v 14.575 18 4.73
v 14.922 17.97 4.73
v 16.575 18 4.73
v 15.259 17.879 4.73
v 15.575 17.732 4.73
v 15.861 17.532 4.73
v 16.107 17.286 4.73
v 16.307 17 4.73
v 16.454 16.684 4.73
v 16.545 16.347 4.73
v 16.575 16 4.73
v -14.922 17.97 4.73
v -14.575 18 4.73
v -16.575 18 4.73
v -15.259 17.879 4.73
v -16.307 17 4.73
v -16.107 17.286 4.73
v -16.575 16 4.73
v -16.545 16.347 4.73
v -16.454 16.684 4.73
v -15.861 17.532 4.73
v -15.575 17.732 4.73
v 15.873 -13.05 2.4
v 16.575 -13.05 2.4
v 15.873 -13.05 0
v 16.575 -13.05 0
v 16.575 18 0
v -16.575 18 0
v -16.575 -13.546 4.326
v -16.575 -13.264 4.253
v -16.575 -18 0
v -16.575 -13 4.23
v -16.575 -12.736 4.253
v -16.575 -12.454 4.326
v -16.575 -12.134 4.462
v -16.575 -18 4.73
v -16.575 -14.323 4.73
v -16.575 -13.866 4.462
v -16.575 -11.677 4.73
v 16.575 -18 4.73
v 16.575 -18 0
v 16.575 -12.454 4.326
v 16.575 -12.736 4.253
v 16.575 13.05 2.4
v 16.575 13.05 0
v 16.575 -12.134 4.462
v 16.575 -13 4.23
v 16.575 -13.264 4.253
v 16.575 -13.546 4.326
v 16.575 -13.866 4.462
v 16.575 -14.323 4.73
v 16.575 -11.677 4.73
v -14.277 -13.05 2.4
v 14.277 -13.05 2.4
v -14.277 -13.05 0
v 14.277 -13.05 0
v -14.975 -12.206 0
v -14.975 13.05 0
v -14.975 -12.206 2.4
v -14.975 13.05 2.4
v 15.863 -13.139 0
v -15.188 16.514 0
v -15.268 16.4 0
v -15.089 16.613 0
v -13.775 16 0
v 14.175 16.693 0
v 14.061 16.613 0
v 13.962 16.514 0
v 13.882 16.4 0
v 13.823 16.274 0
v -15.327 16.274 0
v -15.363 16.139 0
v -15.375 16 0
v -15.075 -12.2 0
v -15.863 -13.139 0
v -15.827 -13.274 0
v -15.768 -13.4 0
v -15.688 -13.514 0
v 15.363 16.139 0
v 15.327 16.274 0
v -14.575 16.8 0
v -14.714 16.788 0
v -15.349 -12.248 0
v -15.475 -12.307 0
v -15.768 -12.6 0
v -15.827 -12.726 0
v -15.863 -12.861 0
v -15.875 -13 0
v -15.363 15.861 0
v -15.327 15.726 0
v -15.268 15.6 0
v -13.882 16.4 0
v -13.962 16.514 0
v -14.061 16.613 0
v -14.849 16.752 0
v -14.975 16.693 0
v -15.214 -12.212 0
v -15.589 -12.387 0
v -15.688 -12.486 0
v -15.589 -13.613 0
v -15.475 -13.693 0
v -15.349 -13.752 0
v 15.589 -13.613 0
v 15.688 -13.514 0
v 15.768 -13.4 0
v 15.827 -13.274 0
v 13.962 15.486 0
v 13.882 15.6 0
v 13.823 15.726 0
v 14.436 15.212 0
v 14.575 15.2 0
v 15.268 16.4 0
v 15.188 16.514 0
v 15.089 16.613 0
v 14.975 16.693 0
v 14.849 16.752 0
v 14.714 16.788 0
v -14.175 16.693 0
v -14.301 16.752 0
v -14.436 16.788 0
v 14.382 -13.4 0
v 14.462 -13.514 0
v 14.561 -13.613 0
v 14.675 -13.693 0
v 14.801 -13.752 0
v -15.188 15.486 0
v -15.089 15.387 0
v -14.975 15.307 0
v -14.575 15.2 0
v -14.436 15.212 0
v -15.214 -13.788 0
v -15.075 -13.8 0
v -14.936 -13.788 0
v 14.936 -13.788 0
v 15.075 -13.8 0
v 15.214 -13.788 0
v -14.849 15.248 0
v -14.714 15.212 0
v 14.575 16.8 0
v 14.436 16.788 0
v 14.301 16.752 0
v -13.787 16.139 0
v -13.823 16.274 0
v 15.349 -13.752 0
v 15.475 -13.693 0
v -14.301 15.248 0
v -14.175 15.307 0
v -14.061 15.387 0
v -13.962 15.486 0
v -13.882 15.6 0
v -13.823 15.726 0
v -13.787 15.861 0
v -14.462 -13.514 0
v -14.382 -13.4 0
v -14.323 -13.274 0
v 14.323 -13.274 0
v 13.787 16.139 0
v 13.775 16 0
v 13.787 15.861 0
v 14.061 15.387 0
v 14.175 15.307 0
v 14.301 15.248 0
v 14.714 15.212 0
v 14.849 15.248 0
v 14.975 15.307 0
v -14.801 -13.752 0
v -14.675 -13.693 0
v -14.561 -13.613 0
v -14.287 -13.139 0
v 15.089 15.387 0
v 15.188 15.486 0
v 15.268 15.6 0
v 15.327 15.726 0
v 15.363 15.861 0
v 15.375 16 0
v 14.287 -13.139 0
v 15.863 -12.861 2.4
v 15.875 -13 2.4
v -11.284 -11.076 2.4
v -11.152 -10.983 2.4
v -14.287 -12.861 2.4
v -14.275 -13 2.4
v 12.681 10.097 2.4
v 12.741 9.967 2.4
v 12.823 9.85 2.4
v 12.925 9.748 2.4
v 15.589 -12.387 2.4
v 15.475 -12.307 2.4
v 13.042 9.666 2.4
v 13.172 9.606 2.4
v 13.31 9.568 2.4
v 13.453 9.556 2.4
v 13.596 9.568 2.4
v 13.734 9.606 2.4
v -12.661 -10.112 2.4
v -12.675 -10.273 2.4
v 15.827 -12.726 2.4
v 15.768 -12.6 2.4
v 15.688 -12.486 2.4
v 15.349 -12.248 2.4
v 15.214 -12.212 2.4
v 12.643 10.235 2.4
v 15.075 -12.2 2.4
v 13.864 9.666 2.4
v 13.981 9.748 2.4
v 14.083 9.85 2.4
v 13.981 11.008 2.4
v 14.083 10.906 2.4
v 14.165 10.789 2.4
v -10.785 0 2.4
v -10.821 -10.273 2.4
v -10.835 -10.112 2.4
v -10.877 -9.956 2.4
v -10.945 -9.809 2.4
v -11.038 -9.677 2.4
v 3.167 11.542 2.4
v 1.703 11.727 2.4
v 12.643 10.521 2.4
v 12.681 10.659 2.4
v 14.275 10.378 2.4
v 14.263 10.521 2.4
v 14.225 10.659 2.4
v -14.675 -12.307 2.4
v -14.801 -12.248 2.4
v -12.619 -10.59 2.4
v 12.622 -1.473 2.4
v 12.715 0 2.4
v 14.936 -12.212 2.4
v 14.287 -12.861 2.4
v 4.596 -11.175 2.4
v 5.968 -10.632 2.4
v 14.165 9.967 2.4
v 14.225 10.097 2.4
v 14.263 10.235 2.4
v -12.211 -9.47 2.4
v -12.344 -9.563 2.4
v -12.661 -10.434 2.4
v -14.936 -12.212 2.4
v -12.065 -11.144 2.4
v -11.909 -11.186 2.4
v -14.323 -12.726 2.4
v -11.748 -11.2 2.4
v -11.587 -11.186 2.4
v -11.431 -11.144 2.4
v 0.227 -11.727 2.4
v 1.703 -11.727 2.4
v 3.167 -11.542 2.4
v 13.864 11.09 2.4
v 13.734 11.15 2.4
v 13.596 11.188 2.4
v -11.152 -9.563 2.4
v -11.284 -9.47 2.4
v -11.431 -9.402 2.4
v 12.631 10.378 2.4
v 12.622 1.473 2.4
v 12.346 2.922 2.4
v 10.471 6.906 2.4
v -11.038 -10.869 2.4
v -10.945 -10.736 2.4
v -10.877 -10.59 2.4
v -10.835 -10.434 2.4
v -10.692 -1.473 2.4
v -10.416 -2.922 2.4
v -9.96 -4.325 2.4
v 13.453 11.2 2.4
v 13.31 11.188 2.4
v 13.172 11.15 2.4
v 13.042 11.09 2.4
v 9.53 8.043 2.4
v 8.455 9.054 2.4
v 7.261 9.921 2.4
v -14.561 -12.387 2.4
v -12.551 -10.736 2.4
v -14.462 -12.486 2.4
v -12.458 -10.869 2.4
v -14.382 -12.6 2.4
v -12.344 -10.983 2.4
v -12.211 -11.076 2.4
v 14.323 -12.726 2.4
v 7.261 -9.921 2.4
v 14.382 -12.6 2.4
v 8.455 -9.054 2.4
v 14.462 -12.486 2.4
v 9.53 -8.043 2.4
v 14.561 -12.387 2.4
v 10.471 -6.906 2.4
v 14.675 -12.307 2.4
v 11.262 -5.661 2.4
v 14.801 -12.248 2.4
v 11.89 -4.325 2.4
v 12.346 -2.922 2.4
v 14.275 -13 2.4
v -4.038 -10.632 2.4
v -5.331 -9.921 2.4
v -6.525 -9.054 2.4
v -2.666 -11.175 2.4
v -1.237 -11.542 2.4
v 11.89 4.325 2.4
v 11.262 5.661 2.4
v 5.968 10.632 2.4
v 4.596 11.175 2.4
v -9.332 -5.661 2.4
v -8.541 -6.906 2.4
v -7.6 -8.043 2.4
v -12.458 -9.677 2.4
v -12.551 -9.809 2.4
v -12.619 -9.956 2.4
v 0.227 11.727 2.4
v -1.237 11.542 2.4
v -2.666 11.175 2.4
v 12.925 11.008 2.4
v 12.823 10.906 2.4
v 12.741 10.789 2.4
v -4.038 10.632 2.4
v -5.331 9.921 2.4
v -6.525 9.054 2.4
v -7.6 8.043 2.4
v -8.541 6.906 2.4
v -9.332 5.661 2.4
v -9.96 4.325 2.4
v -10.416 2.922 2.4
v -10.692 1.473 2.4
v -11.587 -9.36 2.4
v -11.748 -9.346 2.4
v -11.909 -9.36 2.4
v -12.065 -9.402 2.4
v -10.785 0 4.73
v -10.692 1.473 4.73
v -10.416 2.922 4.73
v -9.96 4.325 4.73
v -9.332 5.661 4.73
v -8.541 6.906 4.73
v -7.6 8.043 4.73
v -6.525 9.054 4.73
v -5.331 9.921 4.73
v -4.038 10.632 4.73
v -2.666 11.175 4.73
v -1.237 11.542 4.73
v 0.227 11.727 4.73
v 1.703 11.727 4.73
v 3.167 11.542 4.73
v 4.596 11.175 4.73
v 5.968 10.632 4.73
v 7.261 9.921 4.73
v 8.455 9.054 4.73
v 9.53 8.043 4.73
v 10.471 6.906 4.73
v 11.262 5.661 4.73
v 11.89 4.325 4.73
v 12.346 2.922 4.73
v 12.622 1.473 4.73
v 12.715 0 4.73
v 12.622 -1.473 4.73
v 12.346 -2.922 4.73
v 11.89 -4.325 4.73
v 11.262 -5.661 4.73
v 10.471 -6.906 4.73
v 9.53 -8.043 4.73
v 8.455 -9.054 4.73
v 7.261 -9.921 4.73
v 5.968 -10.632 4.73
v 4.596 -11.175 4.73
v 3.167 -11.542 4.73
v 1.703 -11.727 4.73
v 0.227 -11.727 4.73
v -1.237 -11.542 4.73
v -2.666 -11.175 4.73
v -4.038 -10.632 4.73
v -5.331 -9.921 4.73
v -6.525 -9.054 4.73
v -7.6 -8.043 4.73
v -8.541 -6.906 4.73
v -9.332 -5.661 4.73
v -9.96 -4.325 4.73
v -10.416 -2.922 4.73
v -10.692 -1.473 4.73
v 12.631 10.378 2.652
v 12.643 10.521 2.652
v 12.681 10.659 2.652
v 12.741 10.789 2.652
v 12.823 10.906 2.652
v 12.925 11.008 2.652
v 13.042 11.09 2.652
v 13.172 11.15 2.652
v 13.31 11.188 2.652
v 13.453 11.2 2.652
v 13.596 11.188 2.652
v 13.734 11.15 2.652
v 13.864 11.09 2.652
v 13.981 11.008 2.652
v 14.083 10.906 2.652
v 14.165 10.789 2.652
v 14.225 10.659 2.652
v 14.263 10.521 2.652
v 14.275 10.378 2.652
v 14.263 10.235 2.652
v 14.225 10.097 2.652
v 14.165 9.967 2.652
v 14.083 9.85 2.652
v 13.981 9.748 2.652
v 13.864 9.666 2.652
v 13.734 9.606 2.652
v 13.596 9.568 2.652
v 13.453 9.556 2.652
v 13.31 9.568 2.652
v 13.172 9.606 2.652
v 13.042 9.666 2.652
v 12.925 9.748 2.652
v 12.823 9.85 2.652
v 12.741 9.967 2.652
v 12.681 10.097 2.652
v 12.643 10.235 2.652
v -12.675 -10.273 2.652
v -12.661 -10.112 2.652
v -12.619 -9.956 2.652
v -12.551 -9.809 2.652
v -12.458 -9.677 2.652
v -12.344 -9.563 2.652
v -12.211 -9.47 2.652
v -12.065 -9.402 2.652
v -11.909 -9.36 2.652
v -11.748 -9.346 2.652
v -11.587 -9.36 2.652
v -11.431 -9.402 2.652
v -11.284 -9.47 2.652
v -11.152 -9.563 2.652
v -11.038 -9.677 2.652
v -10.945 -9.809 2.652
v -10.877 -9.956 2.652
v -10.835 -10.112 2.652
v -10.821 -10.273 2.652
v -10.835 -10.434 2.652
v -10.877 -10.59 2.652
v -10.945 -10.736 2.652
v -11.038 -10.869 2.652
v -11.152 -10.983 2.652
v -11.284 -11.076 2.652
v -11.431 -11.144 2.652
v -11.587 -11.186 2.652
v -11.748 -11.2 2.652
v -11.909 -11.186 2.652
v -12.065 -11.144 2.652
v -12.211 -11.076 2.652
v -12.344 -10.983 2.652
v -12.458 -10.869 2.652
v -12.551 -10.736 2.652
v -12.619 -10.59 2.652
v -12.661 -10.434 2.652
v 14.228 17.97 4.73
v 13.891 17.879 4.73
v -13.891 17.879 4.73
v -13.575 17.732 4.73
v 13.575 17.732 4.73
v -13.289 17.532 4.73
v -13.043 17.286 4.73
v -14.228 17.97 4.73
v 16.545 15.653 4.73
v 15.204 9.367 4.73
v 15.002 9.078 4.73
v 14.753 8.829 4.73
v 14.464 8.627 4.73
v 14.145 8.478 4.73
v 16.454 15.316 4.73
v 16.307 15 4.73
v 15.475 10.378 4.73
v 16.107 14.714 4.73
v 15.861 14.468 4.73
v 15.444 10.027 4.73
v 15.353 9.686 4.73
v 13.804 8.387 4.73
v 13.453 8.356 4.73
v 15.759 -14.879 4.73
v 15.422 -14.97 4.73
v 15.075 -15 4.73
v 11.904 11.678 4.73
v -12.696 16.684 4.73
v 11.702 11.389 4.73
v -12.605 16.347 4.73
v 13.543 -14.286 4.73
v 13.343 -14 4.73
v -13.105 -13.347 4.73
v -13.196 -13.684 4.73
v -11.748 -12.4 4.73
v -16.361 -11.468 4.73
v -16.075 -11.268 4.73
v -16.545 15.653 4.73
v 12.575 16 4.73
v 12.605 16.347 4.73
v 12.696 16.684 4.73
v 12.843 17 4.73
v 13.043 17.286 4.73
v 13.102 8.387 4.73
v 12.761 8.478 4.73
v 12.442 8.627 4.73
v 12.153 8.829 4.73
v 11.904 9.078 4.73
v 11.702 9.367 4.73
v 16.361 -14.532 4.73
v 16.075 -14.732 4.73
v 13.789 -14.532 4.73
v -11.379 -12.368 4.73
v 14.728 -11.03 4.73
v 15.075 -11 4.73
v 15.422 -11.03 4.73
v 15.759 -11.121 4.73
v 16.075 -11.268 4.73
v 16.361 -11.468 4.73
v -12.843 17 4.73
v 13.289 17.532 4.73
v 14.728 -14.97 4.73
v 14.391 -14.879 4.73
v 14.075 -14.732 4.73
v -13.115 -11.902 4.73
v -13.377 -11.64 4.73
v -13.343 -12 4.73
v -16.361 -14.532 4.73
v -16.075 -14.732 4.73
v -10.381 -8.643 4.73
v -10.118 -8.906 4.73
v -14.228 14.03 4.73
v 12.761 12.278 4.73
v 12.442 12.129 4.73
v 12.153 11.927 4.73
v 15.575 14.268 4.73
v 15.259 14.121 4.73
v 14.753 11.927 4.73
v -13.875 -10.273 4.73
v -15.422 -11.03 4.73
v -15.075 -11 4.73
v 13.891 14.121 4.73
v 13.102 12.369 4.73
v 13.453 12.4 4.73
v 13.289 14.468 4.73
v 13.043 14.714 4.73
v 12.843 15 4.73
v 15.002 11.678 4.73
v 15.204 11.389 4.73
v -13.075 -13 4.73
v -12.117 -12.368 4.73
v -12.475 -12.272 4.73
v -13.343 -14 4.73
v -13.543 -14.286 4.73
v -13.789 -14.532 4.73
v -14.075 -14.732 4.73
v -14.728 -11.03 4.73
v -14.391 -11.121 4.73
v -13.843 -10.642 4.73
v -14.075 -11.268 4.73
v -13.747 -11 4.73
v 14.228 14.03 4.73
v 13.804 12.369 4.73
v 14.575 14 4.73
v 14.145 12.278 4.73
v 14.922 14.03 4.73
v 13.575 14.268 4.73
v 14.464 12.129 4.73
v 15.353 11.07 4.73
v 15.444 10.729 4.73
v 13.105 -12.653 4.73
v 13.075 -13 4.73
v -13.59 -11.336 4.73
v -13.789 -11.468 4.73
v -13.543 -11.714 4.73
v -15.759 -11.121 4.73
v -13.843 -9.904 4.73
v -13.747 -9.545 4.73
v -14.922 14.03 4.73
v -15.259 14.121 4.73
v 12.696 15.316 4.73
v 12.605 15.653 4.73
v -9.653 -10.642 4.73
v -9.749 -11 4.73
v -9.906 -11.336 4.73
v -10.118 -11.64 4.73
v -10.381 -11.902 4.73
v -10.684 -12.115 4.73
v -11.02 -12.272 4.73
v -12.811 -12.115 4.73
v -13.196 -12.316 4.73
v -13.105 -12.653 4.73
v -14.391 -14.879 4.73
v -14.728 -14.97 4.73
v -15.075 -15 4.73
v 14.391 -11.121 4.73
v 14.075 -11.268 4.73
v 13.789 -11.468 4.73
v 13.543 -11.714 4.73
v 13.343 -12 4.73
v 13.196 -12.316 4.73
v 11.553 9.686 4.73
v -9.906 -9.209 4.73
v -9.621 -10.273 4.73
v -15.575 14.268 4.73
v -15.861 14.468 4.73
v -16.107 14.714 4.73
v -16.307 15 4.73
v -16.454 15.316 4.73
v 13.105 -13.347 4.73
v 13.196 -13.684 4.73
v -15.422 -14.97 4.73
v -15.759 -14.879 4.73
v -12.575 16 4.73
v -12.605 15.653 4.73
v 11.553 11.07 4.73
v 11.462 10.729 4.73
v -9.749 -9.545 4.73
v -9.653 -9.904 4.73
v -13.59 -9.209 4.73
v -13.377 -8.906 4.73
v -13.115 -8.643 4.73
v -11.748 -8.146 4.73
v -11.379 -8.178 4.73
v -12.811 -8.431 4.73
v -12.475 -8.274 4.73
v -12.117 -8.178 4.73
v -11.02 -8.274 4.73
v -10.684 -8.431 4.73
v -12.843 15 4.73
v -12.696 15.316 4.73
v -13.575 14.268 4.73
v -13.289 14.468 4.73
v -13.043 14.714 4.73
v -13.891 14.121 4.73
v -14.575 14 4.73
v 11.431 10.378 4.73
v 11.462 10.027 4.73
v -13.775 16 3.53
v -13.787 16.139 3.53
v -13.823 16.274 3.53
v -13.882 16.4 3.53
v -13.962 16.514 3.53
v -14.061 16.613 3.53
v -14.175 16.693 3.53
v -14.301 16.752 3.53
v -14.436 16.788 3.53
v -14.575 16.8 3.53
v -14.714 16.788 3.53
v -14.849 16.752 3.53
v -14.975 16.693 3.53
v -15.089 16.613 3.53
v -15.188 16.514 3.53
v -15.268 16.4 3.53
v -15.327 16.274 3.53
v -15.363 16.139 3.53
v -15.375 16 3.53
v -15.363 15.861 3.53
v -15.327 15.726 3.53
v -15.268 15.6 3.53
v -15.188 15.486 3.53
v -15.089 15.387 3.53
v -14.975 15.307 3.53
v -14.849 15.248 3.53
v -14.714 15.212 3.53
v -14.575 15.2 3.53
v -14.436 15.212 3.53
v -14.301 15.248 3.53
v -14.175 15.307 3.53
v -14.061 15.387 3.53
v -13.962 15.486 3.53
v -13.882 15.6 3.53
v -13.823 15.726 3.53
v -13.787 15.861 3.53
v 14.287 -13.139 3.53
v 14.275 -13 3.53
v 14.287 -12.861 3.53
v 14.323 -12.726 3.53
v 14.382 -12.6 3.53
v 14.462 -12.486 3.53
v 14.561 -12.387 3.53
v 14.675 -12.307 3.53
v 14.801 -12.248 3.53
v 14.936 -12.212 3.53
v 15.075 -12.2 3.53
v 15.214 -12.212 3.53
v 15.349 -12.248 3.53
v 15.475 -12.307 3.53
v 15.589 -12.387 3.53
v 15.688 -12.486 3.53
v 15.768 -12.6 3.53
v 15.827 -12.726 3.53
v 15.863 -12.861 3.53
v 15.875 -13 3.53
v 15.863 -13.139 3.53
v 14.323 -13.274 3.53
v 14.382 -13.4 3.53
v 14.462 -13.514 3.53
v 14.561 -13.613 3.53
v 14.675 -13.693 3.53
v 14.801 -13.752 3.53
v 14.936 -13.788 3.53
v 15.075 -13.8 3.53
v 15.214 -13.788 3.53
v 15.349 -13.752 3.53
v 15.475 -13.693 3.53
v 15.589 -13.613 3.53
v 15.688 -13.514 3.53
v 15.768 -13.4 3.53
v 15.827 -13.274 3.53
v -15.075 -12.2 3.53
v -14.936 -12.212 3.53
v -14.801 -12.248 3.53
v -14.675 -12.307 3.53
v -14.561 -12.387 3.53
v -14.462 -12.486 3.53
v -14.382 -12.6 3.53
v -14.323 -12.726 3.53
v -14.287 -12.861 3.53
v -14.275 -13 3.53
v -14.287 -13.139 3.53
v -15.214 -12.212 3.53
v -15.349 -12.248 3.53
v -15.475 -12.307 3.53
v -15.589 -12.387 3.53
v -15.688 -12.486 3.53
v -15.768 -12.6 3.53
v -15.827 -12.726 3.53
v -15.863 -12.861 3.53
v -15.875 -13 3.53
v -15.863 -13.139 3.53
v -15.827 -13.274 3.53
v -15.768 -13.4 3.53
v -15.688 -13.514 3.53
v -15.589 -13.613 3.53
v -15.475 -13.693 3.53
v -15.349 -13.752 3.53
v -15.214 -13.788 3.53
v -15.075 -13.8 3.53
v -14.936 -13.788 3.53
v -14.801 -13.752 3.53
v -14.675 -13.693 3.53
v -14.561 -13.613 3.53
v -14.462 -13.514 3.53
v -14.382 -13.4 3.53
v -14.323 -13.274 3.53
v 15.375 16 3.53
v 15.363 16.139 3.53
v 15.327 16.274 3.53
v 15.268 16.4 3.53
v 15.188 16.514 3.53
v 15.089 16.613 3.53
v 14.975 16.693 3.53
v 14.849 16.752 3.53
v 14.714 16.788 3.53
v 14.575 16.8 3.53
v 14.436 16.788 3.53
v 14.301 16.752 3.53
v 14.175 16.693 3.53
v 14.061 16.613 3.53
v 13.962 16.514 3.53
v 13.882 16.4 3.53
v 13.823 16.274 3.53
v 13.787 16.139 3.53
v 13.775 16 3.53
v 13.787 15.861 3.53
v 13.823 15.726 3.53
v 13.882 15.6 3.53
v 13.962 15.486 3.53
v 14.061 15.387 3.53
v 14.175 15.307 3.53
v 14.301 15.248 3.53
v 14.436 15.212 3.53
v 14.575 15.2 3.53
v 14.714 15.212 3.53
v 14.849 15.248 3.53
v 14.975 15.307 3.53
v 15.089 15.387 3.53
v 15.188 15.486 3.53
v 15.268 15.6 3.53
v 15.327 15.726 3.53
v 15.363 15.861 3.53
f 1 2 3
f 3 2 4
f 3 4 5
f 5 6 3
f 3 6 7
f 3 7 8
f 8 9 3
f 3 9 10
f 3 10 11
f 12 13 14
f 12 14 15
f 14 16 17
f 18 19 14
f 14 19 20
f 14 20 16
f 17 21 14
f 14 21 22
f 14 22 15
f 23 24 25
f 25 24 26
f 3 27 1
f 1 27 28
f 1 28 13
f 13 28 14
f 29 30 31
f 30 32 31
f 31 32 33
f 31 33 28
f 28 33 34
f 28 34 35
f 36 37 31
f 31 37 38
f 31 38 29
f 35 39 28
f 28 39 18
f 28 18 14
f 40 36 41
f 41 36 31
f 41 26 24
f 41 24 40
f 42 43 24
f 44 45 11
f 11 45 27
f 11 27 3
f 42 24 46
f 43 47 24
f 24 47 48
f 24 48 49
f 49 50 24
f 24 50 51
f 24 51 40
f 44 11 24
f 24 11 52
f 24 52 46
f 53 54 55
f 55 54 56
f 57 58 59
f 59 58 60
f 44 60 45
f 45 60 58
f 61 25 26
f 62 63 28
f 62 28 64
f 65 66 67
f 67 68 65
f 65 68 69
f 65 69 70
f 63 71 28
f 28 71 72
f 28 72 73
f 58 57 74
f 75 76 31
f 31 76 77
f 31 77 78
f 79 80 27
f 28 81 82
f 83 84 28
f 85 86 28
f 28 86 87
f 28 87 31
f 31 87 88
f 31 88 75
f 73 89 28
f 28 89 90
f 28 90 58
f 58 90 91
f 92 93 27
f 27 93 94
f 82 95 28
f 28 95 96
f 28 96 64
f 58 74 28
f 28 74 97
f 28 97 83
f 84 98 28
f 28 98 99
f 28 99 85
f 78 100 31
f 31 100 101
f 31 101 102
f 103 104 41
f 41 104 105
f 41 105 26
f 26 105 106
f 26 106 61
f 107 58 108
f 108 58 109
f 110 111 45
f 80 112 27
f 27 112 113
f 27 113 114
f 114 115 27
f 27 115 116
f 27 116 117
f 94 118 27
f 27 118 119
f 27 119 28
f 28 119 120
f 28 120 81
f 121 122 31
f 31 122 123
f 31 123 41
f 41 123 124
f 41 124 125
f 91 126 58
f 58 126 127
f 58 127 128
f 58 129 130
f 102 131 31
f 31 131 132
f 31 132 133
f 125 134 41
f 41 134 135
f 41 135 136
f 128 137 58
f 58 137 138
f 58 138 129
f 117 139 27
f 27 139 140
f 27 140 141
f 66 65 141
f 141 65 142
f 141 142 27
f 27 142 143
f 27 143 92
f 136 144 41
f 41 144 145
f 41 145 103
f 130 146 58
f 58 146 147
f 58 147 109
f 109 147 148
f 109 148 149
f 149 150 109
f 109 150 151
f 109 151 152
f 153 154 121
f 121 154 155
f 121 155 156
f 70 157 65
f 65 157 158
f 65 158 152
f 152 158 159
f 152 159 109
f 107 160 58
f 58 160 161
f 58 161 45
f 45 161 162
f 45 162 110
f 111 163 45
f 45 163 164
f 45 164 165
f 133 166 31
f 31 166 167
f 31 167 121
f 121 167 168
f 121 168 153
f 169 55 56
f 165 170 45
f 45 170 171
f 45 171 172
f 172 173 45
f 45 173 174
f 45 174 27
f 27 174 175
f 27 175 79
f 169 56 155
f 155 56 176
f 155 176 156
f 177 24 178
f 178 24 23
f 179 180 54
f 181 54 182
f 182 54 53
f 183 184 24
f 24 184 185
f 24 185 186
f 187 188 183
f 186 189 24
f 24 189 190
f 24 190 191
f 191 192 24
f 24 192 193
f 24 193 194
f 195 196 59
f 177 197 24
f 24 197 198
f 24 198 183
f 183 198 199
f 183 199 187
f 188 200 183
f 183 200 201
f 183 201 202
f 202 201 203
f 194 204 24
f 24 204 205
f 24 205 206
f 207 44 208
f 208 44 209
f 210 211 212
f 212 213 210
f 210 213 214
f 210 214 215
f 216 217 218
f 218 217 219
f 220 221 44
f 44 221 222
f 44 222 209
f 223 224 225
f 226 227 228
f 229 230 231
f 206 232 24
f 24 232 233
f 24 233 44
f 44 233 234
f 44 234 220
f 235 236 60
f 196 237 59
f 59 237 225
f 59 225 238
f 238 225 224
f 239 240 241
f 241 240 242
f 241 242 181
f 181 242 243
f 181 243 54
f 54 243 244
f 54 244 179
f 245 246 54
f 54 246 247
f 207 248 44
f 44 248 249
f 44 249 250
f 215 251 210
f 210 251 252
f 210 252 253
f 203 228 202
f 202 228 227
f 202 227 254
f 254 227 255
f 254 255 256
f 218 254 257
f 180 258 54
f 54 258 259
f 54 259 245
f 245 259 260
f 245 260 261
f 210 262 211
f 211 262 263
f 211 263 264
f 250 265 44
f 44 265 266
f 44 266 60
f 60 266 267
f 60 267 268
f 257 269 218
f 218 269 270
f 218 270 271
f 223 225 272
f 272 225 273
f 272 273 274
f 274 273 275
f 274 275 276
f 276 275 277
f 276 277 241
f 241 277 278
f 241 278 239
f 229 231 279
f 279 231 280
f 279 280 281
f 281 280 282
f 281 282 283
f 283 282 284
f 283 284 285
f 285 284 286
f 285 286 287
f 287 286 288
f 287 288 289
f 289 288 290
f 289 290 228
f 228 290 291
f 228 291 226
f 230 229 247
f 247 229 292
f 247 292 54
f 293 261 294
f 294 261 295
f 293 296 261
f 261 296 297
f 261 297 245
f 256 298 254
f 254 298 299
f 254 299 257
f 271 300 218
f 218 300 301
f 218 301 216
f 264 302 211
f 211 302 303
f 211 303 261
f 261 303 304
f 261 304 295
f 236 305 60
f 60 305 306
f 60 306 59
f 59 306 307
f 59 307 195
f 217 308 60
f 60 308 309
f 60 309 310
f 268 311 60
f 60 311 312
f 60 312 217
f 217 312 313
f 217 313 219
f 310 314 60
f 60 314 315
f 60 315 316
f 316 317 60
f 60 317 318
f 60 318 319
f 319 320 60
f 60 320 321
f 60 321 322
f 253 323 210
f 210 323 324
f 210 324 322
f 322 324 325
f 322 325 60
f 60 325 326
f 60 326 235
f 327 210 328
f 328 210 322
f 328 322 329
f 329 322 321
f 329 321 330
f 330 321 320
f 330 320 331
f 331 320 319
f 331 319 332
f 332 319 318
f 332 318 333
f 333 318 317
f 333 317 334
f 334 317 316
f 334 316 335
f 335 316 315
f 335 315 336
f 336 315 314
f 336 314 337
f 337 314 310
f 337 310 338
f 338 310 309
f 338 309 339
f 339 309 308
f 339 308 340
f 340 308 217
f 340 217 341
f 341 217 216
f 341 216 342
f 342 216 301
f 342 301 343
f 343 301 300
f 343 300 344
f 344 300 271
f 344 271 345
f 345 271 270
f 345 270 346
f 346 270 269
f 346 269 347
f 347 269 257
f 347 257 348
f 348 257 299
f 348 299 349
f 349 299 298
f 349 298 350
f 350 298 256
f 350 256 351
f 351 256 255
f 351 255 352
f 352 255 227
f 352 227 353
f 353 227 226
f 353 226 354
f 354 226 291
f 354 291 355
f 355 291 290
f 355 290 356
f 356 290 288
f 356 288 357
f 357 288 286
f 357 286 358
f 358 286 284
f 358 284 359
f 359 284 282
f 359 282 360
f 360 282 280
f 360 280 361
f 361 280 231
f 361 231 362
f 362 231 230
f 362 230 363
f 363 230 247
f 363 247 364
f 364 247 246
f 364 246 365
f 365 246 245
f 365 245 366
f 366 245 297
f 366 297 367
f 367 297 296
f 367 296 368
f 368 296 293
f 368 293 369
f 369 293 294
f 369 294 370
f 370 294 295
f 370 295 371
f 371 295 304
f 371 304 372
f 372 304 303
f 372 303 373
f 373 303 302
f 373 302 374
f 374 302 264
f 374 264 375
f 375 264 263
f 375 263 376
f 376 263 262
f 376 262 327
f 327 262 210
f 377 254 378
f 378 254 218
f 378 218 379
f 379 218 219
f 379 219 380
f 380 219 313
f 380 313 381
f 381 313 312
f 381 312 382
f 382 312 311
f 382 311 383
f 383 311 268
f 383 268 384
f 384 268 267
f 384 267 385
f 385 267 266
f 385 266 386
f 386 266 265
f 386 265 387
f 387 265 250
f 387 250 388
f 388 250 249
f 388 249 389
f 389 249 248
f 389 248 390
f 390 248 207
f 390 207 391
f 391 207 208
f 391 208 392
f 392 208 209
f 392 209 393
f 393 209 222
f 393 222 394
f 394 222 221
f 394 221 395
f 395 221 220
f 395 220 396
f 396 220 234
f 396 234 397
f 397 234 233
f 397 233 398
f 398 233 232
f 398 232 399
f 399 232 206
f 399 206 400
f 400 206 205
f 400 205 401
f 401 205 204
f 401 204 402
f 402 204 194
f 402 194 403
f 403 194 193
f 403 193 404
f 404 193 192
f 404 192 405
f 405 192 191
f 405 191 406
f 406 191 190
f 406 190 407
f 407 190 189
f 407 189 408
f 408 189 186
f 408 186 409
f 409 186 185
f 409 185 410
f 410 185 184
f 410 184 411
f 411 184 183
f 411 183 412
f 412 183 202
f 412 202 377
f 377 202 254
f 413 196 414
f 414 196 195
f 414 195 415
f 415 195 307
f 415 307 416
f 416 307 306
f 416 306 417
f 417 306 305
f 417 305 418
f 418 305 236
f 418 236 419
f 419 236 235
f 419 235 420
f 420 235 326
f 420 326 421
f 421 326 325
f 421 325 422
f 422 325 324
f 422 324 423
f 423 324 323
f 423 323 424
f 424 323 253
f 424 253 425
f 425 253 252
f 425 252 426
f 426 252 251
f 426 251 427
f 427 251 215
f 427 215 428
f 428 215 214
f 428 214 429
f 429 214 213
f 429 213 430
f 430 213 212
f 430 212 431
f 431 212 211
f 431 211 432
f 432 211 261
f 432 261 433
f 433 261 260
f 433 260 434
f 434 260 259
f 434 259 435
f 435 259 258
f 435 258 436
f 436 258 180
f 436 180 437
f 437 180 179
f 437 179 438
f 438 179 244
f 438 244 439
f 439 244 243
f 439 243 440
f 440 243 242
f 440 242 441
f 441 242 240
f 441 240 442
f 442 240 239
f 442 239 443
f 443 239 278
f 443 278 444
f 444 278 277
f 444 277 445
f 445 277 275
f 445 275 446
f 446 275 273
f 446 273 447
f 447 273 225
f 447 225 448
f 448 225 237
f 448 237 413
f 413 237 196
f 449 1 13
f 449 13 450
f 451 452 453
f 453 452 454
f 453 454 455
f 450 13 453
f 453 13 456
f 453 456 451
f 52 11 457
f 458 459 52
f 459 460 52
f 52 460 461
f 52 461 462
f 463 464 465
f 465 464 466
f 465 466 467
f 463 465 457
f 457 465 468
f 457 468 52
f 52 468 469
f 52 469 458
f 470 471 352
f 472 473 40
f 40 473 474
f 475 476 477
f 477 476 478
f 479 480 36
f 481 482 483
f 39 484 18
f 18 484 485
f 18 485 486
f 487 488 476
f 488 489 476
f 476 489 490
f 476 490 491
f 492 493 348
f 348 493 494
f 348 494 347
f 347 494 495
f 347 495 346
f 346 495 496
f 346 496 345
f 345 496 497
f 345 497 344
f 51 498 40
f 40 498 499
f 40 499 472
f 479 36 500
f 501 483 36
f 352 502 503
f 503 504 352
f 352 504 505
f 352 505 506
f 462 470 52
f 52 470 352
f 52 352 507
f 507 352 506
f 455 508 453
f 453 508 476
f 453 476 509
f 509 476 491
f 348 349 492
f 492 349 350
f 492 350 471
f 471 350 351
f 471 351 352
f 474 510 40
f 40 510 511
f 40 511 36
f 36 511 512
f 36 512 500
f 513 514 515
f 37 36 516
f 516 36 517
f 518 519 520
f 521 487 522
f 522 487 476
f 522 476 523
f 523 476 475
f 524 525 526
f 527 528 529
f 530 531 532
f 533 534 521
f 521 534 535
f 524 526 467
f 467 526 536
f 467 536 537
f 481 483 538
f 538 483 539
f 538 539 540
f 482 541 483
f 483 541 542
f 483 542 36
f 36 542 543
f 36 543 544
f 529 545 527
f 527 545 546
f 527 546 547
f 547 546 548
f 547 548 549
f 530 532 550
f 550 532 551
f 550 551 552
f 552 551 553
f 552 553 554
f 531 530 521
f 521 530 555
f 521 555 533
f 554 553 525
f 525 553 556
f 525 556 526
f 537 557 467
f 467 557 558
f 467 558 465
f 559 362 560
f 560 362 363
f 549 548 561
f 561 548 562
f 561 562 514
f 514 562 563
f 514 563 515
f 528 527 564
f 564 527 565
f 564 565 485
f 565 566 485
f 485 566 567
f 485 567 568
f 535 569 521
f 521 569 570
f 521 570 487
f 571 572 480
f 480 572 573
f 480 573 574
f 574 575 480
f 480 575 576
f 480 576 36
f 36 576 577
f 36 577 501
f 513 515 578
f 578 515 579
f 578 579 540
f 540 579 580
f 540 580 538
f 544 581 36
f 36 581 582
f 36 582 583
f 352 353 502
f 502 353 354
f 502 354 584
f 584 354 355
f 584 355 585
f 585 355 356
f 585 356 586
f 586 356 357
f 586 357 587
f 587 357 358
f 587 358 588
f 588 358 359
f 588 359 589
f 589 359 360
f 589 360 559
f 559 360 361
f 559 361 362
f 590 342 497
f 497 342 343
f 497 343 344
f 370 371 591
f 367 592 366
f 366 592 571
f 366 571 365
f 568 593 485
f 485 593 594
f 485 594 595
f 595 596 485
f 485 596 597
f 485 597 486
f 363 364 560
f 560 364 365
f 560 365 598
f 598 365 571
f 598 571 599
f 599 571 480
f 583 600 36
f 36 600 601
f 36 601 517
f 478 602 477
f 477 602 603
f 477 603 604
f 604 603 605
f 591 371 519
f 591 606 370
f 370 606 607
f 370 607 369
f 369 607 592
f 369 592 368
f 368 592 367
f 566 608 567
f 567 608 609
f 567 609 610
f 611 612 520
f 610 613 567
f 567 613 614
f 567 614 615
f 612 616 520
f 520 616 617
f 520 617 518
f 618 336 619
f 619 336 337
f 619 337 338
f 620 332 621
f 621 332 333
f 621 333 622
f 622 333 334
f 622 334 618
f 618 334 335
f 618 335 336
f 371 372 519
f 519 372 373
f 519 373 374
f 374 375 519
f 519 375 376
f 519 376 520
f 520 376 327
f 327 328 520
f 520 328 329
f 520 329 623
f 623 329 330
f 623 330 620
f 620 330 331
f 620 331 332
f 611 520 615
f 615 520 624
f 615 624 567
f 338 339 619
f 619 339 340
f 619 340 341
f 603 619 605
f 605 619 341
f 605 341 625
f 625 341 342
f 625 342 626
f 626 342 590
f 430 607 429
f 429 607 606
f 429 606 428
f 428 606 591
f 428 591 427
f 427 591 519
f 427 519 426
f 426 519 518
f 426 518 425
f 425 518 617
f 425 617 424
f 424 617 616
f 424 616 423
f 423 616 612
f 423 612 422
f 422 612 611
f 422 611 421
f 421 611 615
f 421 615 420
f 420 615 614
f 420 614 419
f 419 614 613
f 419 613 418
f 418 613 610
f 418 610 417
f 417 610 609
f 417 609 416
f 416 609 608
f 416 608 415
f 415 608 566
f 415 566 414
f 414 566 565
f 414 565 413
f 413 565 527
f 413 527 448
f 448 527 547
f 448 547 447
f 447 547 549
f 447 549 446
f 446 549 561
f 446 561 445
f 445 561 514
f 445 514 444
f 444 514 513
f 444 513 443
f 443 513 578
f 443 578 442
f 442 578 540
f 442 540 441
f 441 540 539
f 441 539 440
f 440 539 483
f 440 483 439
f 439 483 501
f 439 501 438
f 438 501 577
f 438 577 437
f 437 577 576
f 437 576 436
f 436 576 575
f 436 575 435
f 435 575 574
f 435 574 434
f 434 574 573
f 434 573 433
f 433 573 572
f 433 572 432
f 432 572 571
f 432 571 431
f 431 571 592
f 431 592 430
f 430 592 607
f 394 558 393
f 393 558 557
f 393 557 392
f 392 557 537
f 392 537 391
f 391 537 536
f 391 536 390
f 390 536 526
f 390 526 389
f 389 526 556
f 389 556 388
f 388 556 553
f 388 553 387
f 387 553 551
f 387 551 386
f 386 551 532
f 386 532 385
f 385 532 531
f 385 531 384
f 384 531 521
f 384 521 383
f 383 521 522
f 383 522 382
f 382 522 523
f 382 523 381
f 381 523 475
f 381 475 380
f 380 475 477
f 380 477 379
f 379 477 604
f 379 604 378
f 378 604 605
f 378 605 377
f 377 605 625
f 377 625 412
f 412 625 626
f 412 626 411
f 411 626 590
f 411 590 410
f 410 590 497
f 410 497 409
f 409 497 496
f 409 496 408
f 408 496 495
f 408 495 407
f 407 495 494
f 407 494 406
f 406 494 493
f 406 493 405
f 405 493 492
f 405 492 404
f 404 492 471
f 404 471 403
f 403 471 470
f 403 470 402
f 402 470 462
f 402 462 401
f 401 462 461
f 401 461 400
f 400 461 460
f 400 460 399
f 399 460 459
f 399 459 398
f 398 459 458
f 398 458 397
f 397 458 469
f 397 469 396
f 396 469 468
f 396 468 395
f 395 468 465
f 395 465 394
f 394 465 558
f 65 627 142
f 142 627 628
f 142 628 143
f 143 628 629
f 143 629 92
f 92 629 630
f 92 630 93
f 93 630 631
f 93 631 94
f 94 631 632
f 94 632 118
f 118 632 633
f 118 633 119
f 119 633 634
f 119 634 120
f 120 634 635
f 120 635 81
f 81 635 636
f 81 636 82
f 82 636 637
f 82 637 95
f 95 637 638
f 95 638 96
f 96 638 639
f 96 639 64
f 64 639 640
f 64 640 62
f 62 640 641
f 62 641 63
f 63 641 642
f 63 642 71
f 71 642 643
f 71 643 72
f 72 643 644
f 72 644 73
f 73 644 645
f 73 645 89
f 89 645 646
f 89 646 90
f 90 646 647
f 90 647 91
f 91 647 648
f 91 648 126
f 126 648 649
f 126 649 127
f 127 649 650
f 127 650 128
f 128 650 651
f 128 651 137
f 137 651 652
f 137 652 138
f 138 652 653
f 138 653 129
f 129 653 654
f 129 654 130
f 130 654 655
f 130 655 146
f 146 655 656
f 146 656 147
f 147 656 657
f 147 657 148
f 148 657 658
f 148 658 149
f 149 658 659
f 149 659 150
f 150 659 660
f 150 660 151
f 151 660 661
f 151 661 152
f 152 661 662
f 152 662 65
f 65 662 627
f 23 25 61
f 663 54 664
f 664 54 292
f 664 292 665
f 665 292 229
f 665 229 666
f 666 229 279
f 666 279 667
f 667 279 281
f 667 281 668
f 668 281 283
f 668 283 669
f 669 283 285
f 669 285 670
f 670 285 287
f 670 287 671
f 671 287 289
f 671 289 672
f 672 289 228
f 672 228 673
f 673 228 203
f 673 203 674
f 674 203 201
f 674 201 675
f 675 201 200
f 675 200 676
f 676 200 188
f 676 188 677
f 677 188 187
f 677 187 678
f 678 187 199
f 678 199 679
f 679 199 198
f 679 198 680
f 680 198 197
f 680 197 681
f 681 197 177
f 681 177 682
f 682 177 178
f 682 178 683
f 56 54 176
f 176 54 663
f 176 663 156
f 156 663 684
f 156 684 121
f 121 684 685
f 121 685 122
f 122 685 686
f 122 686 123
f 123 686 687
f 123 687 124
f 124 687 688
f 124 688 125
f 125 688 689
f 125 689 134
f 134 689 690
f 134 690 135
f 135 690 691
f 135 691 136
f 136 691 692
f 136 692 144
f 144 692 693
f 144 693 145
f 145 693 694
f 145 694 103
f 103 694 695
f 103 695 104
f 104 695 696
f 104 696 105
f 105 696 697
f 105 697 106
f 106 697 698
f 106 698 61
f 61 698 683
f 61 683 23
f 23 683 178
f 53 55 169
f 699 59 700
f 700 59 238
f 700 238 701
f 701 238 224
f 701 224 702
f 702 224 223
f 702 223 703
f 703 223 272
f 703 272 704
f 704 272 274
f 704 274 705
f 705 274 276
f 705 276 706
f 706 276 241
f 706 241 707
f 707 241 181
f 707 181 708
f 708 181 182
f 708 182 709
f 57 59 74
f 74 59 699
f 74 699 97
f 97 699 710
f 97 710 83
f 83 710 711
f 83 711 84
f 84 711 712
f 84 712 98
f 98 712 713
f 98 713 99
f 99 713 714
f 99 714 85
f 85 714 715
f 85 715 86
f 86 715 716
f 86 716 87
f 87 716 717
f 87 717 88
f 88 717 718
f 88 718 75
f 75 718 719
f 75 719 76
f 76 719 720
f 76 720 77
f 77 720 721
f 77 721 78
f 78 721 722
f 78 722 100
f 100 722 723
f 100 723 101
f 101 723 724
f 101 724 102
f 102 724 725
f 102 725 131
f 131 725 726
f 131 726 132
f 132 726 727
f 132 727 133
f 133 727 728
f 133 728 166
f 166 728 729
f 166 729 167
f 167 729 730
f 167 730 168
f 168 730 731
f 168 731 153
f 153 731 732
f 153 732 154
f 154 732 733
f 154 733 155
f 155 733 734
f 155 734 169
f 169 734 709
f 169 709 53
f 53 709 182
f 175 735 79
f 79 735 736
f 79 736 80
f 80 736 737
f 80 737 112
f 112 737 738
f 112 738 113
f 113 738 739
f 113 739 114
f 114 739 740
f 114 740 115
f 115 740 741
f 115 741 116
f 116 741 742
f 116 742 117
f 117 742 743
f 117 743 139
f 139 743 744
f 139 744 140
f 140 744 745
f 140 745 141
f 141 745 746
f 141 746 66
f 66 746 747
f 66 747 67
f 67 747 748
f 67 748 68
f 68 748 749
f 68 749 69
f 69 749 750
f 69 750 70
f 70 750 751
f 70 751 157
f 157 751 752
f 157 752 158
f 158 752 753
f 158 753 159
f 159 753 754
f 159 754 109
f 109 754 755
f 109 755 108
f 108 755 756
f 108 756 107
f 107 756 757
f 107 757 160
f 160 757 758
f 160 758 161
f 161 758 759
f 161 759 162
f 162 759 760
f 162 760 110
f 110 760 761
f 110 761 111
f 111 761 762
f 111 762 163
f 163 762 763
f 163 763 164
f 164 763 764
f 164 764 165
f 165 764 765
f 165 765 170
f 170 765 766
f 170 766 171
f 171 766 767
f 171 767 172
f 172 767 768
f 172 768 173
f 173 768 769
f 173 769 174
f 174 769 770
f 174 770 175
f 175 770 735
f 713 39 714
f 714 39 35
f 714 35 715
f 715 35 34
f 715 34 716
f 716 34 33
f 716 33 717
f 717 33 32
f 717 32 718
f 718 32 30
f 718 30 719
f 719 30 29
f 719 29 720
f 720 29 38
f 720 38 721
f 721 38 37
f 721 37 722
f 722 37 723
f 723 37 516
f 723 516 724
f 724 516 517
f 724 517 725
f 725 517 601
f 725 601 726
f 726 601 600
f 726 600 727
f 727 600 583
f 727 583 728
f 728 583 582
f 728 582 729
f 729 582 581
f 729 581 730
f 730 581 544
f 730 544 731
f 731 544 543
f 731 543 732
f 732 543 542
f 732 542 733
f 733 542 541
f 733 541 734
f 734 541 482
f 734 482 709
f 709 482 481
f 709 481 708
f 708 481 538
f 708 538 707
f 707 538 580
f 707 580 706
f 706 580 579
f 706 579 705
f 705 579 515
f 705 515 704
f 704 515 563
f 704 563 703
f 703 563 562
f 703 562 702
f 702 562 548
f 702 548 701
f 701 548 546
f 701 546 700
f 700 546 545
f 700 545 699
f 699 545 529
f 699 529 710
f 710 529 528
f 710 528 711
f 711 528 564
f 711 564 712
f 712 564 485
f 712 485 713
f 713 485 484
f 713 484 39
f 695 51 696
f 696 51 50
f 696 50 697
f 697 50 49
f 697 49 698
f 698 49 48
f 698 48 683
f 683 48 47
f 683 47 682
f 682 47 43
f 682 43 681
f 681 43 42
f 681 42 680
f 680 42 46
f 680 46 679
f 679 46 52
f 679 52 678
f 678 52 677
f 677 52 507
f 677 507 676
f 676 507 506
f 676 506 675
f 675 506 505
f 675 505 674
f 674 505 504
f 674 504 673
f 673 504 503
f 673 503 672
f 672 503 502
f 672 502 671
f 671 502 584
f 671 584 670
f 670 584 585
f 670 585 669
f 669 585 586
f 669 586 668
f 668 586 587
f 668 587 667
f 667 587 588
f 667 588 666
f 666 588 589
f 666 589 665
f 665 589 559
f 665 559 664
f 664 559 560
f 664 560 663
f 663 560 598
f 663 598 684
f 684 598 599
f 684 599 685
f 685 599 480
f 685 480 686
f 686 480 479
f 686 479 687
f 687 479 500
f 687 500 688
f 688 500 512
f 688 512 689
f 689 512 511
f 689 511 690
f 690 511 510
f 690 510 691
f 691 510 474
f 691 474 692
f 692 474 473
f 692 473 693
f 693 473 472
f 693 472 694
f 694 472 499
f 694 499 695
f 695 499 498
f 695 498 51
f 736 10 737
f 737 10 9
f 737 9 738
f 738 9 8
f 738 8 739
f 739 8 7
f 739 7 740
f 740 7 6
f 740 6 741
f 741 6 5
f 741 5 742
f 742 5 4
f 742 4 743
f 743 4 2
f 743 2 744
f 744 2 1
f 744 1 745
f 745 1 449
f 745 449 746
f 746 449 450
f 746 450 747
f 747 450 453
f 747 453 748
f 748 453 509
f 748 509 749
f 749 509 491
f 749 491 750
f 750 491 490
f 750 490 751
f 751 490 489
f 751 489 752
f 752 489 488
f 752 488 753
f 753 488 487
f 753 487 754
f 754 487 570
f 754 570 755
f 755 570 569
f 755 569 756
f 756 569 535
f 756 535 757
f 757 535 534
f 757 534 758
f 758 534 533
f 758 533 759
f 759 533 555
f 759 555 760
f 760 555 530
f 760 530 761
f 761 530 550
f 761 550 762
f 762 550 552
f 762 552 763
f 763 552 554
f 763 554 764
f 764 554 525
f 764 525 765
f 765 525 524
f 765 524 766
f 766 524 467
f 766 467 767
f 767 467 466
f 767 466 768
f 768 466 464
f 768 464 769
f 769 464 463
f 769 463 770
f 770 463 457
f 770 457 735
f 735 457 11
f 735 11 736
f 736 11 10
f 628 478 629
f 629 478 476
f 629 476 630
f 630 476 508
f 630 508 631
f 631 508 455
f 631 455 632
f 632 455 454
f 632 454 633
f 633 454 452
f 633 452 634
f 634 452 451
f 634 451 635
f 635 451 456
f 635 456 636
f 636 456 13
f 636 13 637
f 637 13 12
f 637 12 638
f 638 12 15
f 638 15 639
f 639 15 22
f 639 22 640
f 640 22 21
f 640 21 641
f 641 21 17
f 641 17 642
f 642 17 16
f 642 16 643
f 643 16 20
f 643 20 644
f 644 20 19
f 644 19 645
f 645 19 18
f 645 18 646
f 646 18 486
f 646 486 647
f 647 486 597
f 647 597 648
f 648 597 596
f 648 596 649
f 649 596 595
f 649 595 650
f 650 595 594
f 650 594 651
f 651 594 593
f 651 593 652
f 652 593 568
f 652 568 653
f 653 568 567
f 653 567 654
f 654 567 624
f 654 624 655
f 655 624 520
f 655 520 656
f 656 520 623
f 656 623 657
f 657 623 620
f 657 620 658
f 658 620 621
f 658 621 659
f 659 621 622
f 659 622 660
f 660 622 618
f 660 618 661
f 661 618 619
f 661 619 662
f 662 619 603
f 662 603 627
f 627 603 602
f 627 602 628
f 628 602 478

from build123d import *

# Parameters (mm, degrees)
BOSS_EXTRUDE1_DEPTH = 2.4
SKETCH2_W           = 33.15
SKETCH2_H           = 36
SKETCH2_R           = 11.75
SKETCH2_R_2         = 0.822021887
SKETCH2_R_3         = 0.927108541
BOSS_EXTRUDE2_DEPTH = 2.33
CHAMFER1_SIZE       = 1.2
CHAMFER1_SIZE2      = 2.078460969
SKETCH3_R           = 0.8
CUT_EXTRUDE1_DEPTH  = 5.8
CHAMFER2_SIZE       = 1.2


with BuildPart() as part:
    # Sketch1 → Boss-Extrude1 (new body)
    with BuildSketch(Plane.XY):
        Polygon((-16.575, -18), (16.575, -18), (16.575, -13.05), (-14.975, -13.05), (-14.975, 13.05), (16.575, 13.05), (16.575, 18), (-16.575, 18), align=None)
    extrude(amount=BOSS_EXTRUDE1_DEPTH)

    # Sketch2 → Boss-Extrude2 (add)
    with BuildSketch(Plane.XY.offset(2.4)):
        Rectangle(SKETCH2_W, SKETCH2_H)
        with Locations((0.965, 0)):
            Circle(SKETCH2_R, mode=Mode.SUBTRACT)
        with Locations((13.452978113, 10.377978113)):
            Circle(SKETCH2_R_2, mode=Mode.SUBTRACT)
        with Locations((-11.747891459, -10.272891459)):
            Circle(SKETCH2_R_3, mode=Mode.SUBTRACT)
    extrude(amount=BOSS_EXTRUDE2_DEPTH)

    # Chamfer1
    chamfer1_edges = [part.edges().sort_by_distance(p)[0] for p in [
        (12.630956227, 10.377978113, 4.73),
        (-12.675, -10.272891459, 4.73),
    ]]
    chamfer1_side = [part.faces().sort_by_distance(p)[0] for p in [
        (0, 17.510620546, 4.73),
    ]]
    chamfer(chamfer1_edges, length=CHAMFER1_SIZE, length2=CHAMFER1_SIZE2, reference=chamfer1_side[0])

    # Sketch3 → Cut-Extrude1 (cut)
    with BuildSketch(Plane.XY.offset(4.73)):
        with Locations((-14.575, 16)):
            Circle(SKETCH3_R)
        with Locations(Location((14.575, 16, 0), (0, 0, 180))):
            Circle(SKETCH3_R)
        with Locations((-15.075, -13)):
            Circle(SKETCH3_R)
        with Locations(Location((15.075, -13, 0), (0, 0, 356.416678302))):
            Circle(SKETCH3_R)
    extrude(amount=-CUT_EXTRUDE1_DEPTH, mode=Mode.SUBTRACT)

    # Chamfer2
    # the kernel refuses this chamfer: 1.2 mm, written as the material it takes off along each edge
    with BuildSketch(Plane(origin=(14.575, 16, 4.73), x_dir=(-1, 0, 0), z_dir=(0, 1, 0))) as chamfer2_piece_1:
        Polygon((0.8 + CHAMFER2_SIZE, 0), (0.8, -CHAMFER2_SIZE), (0.8, 0), align=None)
    revolve(axis=Axis((14.575, 16, 4.73), (0, 0, 1)), mode=Mode.SUBTRACT)
    with BuildSketch(Plane(origin=(-15.075, -13, 4.73), x_dir=(1, 0, 0), z_dir=(0, -1, 0))) as chamfer2_piece_2:
        Polygon((0.8 + CHAMFER2_SIZE, 0), (0.8, -CHAMFER2_SIZE), (0.8, 0), align=None)
    revolve(axis=Axis((-15.075, -13, 4.73), (0, 0, 1)), mode=Mode.SUBTRACT)
    with BuildSketch(Plane(origin=(15.075, -13, 4.73), x_dir=(0.9980449639174719, -0.06249999999177853, 0), z_dir=(-0.06249999999177853, -0.9980449639174719, 0))) as chamfer2_piece_3:
        Polygon((0.8 + CHAMFER2_SIZE, 0), (0.8, -CHAMFER2_SIZE), (0.8, 0), align=None)
    revolve(axis=Axis((15.075, -13, 4.73), (0, 0, 1)), mode=Mode.SUBTRACT)
    with BuildSketch(Plane(origin=(-14.575, 16, 4.73), x_dir=(1, 0, 0), z_dir=(0, -1, 0))) as chamfer2_piece_4:
        Polygon((0.8 + CHAMFER2_SIZE, 0), (0.8, -CHAMFER2_SIZE), (0.8, 0), align=None)
    revolve(axis=Axis((-14.575, 16, 4.73), (0, 0, 1)), mode=Mode.SUBTRACT)


solid = part.part
